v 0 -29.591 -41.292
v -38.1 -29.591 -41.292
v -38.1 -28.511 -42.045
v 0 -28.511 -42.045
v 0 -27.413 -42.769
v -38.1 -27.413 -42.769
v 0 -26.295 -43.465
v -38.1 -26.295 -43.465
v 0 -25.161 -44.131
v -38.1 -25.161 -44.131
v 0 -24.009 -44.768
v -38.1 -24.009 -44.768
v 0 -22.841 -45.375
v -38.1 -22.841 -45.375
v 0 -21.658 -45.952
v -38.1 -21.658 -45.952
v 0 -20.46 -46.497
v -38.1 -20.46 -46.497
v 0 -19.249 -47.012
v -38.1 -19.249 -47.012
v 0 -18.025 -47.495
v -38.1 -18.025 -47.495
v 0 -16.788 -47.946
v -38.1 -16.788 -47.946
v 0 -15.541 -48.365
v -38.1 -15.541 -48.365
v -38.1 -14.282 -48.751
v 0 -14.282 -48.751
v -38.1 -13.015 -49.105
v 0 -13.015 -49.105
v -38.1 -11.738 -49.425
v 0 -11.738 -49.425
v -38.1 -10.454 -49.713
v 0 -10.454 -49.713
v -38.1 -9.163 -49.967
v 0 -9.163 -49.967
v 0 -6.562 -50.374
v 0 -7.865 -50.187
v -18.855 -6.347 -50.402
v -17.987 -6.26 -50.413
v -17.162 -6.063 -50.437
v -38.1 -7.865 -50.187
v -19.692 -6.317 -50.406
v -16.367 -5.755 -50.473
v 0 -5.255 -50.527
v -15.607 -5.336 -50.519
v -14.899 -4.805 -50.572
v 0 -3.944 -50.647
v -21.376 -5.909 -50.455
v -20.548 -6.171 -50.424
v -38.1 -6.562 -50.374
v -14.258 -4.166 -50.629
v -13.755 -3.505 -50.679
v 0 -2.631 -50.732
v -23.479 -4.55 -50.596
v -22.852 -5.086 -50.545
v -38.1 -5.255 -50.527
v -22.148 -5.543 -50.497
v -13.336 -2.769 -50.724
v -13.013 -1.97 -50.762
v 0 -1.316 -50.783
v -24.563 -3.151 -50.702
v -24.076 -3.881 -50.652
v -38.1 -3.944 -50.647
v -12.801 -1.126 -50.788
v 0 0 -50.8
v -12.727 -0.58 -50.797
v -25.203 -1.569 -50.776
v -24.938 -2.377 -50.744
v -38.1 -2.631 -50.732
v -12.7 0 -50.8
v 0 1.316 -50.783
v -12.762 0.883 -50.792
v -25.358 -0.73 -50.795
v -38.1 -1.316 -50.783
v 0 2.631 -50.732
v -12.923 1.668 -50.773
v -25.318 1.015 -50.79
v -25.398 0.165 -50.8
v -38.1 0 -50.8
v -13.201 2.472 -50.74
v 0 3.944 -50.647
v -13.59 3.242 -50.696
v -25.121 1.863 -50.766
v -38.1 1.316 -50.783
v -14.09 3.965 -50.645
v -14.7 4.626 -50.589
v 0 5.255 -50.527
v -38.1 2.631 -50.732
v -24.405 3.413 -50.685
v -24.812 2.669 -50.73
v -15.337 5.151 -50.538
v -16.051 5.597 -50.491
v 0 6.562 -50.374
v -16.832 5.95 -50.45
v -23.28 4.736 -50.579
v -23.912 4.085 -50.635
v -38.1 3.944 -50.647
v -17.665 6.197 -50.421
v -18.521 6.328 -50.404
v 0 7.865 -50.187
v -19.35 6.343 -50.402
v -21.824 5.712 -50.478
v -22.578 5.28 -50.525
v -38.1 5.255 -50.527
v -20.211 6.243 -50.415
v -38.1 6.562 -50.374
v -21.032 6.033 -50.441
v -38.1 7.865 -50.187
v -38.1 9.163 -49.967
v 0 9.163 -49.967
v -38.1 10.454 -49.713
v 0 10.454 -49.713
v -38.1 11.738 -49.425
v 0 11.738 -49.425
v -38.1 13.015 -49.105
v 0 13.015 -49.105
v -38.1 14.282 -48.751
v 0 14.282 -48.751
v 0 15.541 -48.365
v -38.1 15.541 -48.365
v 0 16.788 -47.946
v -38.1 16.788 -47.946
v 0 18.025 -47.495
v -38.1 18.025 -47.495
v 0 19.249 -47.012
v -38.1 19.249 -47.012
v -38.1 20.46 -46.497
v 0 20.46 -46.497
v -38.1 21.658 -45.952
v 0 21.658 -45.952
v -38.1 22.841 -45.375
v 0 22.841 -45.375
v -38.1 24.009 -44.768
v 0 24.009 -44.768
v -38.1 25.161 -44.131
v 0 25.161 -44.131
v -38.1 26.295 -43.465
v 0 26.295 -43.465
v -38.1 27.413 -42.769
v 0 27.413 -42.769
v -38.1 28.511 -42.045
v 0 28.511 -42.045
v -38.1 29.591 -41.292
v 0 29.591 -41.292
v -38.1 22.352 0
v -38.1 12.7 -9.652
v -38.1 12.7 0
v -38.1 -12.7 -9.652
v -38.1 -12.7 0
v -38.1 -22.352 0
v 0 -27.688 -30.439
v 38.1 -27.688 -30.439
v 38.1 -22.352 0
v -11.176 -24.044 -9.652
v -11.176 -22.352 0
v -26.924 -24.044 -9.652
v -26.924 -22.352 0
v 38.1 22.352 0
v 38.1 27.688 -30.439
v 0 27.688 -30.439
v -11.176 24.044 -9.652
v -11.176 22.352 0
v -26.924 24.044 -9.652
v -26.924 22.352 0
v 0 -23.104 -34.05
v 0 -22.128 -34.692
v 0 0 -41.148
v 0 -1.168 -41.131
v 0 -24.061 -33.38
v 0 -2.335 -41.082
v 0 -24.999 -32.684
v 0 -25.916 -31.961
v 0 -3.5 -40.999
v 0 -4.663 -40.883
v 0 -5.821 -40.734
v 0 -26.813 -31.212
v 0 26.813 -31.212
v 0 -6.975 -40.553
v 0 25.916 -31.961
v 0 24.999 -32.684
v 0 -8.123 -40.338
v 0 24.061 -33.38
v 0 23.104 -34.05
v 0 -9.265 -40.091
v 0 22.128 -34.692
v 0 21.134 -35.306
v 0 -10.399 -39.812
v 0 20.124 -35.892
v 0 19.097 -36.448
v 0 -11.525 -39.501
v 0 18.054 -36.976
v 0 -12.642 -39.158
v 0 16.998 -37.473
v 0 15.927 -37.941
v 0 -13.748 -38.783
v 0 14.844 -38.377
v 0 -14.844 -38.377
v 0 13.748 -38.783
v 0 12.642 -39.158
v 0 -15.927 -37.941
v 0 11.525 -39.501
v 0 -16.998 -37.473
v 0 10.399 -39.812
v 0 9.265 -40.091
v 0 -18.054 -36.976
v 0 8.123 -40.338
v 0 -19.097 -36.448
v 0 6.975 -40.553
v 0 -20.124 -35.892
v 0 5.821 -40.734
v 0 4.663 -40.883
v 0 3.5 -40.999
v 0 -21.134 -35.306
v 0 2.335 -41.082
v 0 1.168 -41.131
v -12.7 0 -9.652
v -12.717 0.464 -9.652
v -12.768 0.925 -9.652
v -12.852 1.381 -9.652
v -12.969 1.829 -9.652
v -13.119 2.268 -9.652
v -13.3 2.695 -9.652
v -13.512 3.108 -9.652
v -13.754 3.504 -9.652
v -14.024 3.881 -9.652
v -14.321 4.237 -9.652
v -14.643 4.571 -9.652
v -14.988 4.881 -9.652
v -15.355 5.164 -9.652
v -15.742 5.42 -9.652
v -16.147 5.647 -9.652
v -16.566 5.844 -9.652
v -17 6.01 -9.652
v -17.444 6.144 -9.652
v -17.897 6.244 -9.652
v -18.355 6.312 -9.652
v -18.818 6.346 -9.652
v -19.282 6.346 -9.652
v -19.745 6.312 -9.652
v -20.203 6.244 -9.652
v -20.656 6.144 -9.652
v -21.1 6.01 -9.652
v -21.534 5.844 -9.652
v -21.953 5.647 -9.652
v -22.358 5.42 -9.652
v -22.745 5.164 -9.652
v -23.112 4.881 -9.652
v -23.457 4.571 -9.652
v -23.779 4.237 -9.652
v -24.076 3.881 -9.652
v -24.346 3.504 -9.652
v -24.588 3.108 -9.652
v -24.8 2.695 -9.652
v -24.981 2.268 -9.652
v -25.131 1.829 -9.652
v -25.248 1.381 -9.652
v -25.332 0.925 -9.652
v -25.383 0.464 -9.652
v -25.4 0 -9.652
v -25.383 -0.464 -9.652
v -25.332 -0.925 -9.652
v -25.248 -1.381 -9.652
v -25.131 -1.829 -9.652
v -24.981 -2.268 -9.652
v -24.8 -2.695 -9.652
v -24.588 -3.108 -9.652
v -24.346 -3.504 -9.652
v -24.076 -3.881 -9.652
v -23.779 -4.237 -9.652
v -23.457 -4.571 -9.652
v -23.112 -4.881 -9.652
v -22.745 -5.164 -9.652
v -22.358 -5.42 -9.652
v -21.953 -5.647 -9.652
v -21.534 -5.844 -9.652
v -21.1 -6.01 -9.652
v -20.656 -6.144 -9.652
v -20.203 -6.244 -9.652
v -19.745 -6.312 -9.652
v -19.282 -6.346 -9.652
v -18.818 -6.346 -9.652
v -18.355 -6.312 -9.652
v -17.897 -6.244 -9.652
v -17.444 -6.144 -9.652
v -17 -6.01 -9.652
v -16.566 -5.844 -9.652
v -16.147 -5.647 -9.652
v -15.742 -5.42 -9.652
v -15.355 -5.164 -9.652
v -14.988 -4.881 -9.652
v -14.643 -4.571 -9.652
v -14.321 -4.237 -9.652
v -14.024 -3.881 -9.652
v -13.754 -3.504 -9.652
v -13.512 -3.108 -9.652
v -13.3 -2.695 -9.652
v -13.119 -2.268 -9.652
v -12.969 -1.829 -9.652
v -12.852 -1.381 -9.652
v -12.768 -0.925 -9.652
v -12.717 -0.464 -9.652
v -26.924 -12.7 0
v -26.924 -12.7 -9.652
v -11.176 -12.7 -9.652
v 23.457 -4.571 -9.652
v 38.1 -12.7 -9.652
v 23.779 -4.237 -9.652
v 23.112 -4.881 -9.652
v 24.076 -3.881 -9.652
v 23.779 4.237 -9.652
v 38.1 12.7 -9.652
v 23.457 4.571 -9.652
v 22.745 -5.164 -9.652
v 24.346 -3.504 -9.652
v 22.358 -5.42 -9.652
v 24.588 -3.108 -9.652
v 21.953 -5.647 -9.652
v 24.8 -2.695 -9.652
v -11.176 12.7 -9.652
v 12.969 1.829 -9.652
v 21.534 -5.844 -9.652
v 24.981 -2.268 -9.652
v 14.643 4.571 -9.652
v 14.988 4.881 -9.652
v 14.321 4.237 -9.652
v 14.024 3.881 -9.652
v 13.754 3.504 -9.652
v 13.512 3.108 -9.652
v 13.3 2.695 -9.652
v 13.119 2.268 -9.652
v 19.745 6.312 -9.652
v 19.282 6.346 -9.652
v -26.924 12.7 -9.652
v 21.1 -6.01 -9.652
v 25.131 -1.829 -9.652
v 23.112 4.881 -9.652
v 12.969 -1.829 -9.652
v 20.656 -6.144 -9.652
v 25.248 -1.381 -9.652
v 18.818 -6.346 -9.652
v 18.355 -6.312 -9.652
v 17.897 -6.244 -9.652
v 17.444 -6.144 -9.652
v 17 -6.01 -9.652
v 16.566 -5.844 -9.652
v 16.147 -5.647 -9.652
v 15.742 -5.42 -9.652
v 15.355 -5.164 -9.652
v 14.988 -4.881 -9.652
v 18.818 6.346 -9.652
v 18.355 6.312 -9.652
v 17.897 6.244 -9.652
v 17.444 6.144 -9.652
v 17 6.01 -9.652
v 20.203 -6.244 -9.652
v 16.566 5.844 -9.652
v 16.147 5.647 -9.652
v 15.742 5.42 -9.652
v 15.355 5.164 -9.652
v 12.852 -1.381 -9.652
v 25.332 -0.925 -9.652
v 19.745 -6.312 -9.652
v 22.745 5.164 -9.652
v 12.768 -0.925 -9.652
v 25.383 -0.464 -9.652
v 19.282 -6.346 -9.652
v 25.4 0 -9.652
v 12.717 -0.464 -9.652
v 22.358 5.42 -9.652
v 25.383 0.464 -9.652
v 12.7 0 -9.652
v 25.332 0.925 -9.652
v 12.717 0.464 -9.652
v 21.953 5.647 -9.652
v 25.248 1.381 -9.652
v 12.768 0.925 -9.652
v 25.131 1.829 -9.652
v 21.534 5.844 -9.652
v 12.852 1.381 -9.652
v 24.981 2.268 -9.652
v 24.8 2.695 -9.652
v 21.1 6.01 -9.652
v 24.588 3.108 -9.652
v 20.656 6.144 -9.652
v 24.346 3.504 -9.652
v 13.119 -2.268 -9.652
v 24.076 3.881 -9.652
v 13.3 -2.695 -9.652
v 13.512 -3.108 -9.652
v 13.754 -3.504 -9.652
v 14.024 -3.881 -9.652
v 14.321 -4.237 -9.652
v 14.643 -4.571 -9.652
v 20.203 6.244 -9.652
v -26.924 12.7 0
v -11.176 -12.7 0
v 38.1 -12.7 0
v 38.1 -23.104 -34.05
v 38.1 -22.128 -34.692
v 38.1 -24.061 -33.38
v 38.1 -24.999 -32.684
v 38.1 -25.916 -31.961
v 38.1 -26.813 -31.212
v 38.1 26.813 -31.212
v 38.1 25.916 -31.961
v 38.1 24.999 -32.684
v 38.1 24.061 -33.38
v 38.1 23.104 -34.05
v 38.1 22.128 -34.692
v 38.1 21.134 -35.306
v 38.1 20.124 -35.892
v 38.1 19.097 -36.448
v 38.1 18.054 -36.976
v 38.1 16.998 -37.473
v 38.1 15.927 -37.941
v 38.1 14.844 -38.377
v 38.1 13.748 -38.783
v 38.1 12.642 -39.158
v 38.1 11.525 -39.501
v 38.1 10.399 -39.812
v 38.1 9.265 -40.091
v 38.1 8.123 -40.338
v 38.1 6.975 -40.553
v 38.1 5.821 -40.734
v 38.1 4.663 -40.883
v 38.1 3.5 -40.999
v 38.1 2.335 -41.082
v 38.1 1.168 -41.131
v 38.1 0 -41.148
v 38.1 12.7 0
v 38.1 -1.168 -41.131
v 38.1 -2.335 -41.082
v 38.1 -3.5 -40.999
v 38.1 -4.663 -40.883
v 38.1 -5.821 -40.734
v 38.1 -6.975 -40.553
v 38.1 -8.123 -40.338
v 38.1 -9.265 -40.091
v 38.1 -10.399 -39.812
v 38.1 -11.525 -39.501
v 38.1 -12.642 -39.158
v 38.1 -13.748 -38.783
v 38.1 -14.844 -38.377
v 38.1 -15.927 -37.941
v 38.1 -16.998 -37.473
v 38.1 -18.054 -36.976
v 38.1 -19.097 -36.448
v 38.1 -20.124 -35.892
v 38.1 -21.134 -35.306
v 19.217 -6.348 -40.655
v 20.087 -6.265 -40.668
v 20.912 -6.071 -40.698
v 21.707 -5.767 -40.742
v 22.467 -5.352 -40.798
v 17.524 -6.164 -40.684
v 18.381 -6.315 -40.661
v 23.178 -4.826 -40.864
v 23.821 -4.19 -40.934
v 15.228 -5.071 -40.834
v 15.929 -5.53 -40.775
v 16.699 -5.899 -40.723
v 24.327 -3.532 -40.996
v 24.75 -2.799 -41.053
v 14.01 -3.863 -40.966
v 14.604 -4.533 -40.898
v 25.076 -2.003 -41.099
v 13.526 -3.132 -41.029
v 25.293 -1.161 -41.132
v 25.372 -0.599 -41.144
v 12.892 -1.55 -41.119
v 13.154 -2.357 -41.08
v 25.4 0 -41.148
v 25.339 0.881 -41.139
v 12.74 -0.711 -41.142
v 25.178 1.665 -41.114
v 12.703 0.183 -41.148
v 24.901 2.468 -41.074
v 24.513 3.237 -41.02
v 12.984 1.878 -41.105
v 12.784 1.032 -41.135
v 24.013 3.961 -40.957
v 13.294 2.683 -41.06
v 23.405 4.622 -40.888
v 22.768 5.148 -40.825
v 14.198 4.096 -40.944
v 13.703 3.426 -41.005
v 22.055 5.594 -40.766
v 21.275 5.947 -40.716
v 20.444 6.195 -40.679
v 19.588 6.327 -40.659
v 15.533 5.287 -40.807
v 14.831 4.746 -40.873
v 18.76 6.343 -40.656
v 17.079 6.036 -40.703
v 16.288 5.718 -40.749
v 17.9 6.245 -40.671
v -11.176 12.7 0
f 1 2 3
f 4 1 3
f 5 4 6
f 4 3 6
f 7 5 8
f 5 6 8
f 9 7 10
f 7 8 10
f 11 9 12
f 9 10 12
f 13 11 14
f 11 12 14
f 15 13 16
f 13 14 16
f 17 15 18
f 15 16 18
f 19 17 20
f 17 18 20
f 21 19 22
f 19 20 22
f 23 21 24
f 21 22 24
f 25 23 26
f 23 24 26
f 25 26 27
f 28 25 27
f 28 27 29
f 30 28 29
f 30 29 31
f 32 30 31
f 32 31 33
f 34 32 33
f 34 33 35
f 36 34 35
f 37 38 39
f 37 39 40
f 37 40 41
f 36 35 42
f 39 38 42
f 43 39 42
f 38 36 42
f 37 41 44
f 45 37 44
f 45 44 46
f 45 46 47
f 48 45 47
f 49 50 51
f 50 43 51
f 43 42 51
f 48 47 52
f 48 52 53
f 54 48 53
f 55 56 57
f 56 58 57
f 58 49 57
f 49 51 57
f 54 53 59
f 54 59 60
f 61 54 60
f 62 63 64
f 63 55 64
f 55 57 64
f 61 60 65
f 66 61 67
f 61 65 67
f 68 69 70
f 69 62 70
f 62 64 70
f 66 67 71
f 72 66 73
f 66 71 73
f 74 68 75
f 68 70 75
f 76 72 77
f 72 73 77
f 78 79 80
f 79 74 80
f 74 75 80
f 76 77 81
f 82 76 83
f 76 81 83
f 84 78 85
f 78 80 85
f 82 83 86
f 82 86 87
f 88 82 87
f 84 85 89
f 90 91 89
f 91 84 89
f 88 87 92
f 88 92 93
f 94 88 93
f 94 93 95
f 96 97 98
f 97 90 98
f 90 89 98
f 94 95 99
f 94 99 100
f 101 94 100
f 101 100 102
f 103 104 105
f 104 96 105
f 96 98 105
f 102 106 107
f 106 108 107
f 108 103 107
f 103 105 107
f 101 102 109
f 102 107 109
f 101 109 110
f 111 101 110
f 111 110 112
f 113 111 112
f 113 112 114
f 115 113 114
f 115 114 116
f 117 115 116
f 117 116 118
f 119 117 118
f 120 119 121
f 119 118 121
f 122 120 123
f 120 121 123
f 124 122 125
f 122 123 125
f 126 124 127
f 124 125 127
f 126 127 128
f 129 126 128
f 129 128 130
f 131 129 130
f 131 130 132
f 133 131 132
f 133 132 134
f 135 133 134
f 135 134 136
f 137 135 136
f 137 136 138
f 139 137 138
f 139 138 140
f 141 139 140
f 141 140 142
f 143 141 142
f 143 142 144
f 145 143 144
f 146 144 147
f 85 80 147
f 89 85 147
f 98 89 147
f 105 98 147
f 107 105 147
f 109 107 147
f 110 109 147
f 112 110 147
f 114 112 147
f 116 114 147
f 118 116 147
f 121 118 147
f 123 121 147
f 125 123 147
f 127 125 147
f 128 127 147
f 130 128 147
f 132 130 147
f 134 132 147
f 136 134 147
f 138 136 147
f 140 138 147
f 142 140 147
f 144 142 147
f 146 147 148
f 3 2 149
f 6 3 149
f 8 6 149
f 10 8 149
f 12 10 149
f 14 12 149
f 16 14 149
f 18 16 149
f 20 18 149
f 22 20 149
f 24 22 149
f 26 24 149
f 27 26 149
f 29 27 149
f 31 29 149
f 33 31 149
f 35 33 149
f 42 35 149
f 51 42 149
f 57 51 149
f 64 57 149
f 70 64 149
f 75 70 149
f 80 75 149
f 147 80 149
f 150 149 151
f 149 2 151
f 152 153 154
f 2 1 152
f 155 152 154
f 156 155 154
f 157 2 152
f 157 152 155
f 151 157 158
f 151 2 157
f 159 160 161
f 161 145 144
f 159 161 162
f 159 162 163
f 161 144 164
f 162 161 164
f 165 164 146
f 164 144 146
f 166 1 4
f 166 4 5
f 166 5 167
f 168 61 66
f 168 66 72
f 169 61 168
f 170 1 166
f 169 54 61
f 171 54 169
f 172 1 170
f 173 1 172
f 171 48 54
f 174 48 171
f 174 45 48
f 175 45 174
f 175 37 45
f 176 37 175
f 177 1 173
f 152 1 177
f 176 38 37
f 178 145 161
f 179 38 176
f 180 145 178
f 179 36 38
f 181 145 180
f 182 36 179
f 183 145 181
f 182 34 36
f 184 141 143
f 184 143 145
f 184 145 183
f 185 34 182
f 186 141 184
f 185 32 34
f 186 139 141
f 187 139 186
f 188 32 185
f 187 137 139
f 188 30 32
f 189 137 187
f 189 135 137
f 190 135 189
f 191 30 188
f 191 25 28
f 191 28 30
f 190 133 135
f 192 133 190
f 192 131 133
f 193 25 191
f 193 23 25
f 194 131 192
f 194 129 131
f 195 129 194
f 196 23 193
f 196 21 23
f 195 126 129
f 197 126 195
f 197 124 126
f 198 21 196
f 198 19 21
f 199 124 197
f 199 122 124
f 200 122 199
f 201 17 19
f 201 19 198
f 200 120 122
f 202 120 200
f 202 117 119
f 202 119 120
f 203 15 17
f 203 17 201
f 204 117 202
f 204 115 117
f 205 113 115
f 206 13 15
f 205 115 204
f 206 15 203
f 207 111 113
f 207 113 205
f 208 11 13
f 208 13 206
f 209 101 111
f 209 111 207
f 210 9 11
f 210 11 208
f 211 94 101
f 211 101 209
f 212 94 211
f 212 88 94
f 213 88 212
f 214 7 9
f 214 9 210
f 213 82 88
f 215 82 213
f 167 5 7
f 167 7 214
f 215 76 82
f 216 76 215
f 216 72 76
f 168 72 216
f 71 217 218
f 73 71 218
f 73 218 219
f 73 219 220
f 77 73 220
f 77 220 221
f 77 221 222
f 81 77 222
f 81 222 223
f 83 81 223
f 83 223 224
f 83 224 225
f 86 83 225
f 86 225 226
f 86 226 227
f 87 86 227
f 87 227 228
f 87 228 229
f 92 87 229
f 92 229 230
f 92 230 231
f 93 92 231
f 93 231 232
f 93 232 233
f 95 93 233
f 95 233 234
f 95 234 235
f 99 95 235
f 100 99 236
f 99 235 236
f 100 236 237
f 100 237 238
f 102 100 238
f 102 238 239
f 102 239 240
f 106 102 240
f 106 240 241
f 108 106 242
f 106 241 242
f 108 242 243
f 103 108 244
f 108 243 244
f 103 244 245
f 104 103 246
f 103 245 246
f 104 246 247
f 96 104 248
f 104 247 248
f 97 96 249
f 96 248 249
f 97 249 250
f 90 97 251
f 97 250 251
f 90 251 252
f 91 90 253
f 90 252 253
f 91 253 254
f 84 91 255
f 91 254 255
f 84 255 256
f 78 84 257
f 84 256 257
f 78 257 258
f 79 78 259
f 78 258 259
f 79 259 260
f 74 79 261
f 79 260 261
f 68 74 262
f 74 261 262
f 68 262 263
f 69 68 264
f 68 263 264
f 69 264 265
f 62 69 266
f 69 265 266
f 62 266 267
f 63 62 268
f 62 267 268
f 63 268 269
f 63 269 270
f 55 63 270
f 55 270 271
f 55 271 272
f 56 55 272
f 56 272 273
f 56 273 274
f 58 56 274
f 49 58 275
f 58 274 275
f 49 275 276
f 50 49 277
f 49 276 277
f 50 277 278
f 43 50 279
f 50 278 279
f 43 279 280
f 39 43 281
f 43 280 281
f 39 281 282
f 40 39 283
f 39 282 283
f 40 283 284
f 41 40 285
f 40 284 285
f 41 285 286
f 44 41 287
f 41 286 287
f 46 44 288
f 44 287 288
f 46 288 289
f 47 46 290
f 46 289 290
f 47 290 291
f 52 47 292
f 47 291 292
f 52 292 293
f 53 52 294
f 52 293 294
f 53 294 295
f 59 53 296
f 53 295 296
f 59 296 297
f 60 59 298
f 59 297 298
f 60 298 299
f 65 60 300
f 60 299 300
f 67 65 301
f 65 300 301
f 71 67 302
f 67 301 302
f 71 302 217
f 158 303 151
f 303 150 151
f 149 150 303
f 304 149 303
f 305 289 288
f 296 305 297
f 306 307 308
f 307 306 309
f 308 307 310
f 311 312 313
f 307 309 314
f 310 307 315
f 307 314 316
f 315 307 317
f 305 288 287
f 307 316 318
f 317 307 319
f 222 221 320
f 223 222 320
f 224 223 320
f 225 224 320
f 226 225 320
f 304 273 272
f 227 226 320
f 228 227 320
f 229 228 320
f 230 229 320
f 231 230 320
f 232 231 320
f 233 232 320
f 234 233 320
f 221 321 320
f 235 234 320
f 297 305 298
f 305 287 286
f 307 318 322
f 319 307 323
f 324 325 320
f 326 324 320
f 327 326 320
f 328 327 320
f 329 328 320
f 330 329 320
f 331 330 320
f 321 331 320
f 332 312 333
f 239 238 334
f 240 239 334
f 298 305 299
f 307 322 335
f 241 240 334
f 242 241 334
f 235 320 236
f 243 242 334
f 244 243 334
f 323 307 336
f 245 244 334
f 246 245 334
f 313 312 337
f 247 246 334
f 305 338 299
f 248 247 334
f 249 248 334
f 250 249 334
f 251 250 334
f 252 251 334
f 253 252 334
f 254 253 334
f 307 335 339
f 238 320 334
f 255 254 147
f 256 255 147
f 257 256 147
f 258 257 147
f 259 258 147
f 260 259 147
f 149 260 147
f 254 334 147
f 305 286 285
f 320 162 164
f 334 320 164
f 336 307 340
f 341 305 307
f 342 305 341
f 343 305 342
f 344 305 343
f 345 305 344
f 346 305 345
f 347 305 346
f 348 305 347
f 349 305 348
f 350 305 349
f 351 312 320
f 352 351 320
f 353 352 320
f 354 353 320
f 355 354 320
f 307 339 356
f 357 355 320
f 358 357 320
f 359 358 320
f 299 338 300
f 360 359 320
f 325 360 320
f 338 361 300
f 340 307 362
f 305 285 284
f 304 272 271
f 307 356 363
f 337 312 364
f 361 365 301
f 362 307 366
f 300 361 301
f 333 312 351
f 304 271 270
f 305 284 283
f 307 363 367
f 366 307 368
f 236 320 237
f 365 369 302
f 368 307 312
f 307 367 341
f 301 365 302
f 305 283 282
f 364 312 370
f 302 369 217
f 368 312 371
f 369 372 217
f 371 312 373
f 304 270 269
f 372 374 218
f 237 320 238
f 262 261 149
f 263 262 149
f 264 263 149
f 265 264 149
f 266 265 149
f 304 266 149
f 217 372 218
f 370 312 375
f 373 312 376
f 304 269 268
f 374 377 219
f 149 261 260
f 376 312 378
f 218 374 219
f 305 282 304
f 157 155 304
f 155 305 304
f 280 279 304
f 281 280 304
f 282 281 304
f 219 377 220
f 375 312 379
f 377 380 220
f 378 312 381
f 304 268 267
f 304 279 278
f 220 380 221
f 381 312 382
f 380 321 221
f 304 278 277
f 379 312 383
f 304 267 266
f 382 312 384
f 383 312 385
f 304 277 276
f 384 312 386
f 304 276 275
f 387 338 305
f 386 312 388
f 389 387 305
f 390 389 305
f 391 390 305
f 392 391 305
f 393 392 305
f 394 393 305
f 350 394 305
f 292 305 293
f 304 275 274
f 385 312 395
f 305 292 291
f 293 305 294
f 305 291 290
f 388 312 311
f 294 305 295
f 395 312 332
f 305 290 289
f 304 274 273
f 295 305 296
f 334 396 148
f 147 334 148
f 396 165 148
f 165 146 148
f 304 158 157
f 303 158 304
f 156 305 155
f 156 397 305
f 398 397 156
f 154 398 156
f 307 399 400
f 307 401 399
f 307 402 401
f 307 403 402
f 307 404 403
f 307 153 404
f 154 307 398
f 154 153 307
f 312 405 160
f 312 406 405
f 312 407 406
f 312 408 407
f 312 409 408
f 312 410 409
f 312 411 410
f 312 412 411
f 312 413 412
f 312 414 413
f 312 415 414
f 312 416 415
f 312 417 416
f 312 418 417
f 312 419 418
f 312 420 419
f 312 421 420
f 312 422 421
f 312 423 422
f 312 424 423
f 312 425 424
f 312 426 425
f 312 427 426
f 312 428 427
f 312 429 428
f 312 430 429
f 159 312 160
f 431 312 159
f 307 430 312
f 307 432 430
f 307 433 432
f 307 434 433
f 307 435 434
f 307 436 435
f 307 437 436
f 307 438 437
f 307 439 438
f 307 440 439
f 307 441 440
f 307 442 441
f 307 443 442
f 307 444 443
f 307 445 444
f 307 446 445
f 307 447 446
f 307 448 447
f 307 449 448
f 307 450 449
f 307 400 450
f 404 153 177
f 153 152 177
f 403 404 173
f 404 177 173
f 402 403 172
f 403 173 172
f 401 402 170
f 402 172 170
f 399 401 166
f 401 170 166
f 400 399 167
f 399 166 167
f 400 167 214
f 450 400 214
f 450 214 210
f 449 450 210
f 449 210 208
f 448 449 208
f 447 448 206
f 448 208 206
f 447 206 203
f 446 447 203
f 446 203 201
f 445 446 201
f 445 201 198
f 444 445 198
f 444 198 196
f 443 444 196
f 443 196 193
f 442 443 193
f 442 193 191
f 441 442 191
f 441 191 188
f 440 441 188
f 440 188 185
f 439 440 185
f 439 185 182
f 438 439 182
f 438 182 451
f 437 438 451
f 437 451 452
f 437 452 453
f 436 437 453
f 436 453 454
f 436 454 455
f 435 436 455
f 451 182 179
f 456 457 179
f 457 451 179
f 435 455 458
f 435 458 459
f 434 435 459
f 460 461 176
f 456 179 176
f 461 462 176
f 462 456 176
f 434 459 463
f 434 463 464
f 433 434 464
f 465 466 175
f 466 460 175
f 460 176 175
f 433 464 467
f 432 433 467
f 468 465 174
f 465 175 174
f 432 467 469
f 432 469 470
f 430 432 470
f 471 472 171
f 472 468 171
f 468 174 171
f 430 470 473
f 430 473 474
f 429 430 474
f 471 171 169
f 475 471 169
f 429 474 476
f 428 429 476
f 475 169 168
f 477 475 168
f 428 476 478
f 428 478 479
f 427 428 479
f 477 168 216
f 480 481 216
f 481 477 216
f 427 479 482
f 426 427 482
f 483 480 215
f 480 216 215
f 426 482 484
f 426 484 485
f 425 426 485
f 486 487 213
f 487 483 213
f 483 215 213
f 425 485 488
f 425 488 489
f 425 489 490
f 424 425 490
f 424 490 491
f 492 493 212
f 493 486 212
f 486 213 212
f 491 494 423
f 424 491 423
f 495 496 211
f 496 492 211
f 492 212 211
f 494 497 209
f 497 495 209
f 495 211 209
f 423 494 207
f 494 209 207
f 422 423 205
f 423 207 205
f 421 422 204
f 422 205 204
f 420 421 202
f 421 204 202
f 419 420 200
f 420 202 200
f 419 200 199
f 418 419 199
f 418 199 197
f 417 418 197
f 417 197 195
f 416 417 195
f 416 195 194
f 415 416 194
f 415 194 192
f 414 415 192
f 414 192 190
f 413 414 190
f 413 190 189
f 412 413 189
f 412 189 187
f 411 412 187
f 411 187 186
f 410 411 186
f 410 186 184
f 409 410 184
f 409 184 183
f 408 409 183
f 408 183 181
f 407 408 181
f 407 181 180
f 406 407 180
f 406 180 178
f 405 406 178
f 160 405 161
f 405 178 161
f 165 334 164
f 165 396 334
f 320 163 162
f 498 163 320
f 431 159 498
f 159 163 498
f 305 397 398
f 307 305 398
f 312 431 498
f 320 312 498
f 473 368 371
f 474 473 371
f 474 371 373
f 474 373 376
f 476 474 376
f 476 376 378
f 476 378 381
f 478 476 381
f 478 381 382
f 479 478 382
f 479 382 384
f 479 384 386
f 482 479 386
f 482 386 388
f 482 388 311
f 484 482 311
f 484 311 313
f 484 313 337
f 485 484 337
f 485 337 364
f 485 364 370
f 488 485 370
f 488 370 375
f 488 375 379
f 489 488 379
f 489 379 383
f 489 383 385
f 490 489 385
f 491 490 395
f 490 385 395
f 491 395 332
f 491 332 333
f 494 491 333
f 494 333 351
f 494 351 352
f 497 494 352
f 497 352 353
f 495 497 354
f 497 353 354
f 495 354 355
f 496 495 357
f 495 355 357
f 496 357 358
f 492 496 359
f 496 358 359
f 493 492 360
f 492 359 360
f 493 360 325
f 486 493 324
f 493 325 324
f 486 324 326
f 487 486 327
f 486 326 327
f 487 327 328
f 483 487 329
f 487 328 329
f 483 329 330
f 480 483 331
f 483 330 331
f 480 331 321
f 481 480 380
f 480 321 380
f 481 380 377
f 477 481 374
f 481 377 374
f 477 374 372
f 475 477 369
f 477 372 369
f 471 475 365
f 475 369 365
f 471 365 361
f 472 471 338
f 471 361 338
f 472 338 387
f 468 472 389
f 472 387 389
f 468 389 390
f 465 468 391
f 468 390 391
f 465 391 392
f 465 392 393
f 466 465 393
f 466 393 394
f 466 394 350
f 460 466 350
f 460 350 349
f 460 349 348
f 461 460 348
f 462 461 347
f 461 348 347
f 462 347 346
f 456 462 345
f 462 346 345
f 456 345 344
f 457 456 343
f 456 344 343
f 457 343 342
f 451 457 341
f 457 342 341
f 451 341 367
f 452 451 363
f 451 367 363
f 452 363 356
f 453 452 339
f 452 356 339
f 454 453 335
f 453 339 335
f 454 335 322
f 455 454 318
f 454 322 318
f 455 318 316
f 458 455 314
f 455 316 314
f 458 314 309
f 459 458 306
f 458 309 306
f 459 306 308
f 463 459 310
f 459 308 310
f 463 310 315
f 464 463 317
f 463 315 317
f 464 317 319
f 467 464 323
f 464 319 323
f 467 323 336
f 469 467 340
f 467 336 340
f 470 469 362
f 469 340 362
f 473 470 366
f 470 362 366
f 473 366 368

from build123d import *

# Parameters (mm, degrees)
PAD_DEPTH       = 38.1
SKETCH001_R     = 50.8
SKETCH001_R_2   = 41.148
POCKET_DEPTH    = 38.101
SKETCH002_R     = 6.35
POCKET001_DEPTH = 50.801
POCKET002_DEPTH = 9.652


with BuildPart() as part:
    # Sketch → Pad (new body, symmetric)
    with BuildSketch(Plane.YZ):
        with BuildLine():
            ThreePointArc((-29.591, -41.2918), (0, -50.8), (29.591, -41.2918))
            Line((29.591, -41.2918), (22.352, 0))
            Line((22.352, 0), (-22.352, 0))
            Line((-29.591, -41.2918), (-22.352, 0))
        make_face()
    extrude(amount=PAD_DEPTH, both=True)

    # Sketch001 → Pocket (cut, through all)
    with BuildSketch(Plane.YZ):
        Circle(SKETCH001_R)
        Circle(SKETCH001_R_2, mode=Mode.SUBTRACT)
    extrude(amount=POCKET_DEPTH, mode=Mode.SUBTRACT)

    # Sketch002 → Pocket001 (cut, through all)
    with BuildSketch(Plane.XY):
        with Locations((-19.05, 0)):
            Circle(SKETCH002_R)
        with Locations((19.05, 0)):
            Circle(SKETCH002_R)
    extrude(amount=-POCKET001_DEPTH, mode=Mode.SUBTRACT)

    # Sketch003 → Pocket002 (cut)
    with BuildSketch(Plane.XY):
        Polygon((-26.924, 31.75), (-11.176, 31.75), (-11.176, 12.7), (38.1, 12.7), (38.1, -12.7), (-11.176, -12.7), (-11.176, -31.75), (-26.924, -31.75), (-26.924, -12.7), (-38.1, -12.7), (-38.1, 12.7), (-26.924, 12.7), align=None)
    extrude(amount=-POCKET002_DEPTH, mode=Mode.SUBTRACT)


solid = part.part
